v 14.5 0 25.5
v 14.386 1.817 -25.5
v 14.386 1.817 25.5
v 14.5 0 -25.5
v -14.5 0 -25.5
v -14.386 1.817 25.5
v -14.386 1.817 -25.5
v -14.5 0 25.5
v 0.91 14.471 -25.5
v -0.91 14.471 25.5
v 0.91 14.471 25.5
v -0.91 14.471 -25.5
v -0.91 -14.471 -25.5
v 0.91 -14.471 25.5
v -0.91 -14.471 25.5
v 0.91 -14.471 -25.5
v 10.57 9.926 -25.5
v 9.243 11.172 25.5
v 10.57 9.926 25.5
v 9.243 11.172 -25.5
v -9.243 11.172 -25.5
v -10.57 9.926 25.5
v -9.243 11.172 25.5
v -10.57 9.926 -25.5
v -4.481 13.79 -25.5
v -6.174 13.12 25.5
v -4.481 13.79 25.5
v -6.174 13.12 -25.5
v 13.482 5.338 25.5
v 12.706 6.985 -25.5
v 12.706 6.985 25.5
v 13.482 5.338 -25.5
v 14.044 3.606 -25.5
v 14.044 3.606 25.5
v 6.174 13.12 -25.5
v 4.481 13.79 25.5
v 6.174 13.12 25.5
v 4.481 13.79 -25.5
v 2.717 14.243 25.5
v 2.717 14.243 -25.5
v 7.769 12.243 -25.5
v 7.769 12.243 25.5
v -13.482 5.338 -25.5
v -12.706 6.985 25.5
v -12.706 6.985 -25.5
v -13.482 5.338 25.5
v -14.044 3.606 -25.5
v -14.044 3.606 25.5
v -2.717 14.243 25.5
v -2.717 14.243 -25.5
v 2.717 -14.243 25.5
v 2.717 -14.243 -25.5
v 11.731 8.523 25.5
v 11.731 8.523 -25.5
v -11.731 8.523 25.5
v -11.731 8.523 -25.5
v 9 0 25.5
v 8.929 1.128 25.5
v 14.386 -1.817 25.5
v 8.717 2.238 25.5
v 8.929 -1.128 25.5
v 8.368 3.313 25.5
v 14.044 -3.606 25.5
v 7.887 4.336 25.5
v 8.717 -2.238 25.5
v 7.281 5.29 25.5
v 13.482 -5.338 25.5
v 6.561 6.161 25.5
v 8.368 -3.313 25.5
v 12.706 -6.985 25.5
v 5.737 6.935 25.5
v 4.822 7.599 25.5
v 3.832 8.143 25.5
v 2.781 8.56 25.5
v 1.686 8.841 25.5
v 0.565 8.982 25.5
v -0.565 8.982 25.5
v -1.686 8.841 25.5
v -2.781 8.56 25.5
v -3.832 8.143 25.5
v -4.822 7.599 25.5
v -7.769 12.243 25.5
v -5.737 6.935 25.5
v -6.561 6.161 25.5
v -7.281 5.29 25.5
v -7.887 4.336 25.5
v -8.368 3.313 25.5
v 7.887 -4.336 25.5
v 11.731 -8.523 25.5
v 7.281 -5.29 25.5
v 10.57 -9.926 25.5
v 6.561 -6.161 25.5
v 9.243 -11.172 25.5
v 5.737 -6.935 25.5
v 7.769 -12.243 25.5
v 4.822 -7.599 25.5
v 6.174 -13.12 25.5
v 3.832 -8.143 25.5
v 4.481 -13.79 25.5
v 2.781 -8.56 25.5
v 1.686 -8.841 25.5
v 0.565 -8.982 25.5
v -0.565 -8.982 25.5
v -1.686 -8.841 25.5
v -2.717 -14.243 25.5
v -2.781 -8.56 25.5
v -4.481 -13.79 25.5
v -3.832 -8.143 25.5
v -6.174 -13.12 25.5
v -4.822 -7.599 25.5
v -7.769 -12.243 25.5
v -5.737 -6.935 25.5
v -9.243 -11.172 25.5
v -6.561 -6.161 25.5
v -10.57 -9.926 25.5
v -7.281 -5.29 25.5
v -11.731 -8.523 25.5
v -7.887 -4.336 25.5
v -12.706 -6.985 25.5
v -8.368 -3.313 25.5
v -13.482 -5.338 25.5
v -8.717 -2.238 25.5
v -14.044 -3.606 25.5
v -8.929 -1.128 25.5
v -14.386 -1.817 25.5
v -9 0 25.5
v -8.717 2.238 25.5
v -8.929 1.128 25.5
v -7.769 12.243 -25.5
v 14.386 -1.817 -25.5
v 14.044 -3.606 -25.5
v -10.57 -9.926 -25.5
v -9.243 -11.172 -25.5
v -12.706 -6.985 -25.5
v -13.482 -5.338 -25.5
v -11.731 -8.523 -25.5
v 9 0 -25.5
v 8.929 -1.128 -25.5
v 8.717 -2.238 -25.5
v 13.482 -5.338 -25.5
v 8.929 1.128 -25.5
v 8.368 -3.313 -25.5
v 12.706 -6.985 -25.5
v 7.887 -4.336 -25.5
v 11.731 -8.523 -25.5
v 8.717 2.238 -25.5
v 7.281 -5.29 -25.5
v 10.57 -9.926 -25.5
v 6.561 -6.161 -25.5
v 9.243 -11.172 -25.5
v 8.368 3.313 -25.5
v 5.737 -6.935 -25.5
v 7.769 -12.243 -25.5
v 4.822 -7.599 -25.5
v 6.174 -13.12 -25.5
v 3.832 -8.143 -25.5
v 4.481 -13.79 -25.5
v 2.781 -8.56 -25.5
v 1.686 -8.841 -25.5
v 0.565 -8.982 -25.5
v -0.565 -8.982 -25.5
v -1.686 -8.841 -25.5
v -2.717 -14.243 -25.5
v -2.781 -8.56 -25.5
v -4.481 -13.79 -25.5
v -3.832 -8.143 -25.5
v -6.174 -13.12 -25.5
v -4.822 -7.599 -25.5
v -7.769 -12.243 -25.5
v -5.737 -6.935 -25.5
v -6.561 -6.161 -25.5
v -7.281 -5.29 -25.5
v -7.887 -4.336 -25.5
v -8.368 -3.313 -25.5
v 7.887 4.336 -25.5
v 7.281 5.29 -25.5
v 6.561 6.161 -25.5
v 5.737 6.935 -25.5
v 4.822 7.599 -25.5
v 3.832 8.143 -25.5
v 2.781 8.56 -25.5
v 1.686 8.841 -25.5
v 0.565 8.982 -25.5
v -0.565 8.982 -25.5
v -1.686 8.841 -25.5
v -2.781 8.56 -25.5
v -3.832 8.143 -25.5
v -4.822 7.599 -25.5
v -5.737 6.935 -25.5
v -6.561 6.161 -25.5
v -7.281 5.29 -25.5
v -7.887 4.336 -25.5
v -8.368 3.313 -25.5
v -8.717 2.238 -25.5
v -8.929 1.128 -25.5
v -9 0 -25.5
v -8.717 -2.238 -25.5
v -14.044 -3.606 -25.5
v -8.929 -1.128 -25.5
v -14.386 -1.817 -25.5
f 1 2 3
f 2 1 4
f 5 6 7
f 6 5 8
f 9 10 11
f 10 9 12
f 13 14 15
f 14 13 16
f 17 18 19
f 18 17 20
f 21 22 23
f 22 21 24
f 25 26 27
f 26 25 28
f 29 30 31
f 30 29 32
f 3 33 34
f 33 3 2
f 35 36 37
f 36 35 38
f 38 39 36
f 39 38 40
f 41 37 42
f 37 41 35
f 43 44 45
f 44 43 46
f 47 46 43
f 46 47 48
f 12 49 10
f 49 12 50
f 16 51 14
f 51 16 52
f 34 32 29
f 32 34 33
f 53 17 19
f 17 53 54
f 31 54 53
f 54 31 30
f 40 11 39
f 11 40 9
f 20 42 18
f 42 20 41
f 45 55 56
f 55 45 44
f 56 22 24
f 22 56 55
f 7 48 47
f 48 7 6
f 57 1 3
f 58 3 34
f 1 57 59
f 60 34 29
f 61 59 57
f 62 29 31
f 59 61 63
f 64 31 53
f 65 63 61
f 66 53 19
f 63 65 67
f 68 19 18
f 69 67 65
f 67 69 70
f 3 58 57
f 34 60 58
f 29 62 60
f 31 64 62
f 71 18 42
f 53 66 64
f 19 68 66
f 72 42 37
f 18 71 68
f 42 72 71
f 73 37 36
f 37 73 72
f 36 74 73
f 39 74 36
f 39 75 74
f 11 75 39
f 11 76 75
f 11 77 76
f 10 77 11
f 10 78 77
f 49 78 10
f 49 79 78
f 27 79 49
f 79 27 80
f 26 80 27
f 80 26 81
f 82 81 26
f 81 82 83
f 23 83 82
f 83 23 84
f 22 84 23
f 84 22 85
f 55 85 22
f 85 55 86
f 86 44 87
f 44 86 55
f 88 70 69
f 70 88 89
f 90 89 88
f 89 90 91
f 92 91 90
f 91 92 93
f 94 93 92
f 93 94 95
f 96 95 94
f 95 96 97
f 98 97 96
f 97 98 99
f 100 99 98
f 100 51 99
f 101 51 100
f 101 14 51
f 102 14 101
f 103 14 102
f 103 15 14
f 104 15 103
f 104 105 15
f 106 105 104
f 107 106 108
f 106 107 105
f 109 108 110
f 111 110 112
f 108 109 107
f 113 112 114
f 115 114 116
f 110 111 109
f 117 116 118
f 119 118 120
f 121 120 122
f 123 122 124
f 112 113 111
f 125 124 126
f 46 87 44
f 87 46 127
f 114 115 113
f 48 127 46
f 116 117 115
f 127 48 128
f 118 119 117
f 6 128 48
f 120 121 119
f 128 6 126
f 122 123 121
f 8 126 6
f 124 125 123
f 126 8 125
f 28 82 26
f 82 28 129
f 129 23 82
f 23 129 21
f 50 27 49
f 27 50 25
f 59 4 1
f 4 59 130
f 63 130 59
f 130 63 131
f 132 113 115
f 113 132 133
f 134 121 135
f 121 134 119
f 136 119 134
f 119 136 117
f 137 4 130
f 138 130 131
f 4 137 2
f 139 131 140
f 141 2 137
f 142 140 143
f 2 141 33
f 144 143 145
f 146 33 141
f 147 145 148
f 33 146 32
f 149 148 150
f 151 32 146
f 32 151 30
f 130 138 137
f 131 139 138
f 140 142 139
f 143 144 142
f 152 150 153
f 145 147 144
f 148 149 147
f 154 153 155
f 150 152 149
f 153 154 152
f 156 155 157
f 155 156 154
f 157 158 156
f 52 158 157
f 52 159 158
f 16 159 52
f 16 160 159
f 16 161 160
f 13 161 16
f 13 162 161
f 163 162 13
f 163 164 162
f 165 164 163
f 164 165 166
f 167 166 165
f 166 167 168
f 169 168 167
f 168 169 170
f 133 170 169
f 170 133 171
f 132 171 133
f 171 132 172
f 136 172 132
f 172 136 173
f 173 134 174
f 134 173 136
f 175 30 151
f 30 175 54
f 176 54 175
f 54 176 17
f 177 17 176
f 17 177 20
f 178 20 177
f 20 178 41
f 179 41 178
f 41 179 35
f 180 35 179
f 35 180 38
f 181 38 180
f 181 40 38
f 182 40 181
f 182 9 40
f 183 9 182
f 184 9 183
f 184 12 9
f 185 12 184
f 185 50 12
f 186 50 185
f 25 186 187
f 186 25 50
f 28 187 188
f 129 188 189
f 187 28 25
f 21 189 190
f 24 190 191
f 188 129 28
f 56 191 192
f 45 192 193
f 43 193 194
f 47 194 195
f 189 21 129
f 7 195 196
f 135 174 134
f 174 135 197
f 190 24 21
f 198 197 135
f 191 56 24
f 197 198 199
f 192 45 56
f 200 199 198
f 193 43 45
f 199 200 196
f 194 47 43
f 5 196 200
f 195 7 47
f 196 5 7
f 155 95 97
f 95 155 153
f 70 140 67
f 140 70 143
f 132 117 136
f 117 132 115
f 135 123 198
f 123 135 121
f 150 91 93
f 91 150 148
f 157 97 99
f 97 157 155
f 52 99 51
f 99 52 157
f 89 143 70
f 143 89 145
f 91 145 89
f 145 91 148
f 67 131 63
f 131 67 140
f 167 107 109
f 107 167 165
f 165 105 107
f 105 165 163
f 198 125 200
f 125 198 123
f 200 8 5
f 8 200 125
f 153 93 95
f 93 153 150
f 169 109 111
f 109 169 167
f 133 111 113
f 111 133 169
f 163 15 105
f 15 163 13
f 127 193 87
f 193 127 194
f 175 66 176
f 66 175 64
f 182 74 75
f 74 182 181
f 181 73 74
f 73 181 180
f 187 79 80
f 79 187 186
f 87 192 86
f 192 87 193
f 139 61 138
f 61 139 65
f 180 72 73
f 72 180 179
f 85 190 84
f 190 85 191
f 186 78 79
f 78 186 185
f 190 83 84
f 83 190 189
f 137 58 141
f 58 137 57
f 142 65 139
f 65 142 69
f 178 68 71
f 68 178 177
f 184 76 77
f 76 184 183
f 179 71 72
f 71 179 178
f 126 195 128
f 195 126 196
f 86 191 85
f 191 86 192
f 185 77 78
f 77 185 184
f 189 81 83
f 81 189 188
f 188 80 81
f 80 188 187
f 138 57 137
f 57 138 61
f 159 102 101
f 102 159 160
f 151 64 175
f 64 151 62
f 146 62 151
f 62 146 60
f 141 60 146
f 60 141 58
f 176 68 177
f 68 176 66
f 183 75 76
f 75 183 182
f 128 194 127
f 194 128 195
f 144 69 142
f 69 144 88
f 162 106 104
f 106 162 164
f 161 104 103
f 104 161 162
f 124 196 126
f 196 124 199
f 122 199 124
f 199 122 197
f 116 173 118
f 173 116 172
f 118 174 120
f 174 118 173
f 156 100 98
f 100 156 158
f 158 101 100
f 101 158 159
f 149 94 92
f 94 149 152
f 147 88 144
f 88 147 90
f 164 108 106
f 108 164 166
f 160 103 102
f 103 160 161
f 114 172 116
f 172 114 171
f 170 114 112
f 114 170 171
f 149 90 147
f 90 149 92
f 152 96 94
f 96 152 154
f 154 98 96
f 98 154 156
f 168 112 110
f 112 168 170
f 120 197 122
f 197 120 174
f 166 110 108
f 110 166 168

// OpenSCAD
$fn = 50;


difference() {
	union() {
		translate(v = [0, 0, -25.5000000000]) {
			cylinder(h = 51, r = 14.5000000000);
		}
	}
	union() {
		translate(v = [0, 0, -100.0000000000]) {
			cylinder(h = 200, r = 9);
		}
	}
}
